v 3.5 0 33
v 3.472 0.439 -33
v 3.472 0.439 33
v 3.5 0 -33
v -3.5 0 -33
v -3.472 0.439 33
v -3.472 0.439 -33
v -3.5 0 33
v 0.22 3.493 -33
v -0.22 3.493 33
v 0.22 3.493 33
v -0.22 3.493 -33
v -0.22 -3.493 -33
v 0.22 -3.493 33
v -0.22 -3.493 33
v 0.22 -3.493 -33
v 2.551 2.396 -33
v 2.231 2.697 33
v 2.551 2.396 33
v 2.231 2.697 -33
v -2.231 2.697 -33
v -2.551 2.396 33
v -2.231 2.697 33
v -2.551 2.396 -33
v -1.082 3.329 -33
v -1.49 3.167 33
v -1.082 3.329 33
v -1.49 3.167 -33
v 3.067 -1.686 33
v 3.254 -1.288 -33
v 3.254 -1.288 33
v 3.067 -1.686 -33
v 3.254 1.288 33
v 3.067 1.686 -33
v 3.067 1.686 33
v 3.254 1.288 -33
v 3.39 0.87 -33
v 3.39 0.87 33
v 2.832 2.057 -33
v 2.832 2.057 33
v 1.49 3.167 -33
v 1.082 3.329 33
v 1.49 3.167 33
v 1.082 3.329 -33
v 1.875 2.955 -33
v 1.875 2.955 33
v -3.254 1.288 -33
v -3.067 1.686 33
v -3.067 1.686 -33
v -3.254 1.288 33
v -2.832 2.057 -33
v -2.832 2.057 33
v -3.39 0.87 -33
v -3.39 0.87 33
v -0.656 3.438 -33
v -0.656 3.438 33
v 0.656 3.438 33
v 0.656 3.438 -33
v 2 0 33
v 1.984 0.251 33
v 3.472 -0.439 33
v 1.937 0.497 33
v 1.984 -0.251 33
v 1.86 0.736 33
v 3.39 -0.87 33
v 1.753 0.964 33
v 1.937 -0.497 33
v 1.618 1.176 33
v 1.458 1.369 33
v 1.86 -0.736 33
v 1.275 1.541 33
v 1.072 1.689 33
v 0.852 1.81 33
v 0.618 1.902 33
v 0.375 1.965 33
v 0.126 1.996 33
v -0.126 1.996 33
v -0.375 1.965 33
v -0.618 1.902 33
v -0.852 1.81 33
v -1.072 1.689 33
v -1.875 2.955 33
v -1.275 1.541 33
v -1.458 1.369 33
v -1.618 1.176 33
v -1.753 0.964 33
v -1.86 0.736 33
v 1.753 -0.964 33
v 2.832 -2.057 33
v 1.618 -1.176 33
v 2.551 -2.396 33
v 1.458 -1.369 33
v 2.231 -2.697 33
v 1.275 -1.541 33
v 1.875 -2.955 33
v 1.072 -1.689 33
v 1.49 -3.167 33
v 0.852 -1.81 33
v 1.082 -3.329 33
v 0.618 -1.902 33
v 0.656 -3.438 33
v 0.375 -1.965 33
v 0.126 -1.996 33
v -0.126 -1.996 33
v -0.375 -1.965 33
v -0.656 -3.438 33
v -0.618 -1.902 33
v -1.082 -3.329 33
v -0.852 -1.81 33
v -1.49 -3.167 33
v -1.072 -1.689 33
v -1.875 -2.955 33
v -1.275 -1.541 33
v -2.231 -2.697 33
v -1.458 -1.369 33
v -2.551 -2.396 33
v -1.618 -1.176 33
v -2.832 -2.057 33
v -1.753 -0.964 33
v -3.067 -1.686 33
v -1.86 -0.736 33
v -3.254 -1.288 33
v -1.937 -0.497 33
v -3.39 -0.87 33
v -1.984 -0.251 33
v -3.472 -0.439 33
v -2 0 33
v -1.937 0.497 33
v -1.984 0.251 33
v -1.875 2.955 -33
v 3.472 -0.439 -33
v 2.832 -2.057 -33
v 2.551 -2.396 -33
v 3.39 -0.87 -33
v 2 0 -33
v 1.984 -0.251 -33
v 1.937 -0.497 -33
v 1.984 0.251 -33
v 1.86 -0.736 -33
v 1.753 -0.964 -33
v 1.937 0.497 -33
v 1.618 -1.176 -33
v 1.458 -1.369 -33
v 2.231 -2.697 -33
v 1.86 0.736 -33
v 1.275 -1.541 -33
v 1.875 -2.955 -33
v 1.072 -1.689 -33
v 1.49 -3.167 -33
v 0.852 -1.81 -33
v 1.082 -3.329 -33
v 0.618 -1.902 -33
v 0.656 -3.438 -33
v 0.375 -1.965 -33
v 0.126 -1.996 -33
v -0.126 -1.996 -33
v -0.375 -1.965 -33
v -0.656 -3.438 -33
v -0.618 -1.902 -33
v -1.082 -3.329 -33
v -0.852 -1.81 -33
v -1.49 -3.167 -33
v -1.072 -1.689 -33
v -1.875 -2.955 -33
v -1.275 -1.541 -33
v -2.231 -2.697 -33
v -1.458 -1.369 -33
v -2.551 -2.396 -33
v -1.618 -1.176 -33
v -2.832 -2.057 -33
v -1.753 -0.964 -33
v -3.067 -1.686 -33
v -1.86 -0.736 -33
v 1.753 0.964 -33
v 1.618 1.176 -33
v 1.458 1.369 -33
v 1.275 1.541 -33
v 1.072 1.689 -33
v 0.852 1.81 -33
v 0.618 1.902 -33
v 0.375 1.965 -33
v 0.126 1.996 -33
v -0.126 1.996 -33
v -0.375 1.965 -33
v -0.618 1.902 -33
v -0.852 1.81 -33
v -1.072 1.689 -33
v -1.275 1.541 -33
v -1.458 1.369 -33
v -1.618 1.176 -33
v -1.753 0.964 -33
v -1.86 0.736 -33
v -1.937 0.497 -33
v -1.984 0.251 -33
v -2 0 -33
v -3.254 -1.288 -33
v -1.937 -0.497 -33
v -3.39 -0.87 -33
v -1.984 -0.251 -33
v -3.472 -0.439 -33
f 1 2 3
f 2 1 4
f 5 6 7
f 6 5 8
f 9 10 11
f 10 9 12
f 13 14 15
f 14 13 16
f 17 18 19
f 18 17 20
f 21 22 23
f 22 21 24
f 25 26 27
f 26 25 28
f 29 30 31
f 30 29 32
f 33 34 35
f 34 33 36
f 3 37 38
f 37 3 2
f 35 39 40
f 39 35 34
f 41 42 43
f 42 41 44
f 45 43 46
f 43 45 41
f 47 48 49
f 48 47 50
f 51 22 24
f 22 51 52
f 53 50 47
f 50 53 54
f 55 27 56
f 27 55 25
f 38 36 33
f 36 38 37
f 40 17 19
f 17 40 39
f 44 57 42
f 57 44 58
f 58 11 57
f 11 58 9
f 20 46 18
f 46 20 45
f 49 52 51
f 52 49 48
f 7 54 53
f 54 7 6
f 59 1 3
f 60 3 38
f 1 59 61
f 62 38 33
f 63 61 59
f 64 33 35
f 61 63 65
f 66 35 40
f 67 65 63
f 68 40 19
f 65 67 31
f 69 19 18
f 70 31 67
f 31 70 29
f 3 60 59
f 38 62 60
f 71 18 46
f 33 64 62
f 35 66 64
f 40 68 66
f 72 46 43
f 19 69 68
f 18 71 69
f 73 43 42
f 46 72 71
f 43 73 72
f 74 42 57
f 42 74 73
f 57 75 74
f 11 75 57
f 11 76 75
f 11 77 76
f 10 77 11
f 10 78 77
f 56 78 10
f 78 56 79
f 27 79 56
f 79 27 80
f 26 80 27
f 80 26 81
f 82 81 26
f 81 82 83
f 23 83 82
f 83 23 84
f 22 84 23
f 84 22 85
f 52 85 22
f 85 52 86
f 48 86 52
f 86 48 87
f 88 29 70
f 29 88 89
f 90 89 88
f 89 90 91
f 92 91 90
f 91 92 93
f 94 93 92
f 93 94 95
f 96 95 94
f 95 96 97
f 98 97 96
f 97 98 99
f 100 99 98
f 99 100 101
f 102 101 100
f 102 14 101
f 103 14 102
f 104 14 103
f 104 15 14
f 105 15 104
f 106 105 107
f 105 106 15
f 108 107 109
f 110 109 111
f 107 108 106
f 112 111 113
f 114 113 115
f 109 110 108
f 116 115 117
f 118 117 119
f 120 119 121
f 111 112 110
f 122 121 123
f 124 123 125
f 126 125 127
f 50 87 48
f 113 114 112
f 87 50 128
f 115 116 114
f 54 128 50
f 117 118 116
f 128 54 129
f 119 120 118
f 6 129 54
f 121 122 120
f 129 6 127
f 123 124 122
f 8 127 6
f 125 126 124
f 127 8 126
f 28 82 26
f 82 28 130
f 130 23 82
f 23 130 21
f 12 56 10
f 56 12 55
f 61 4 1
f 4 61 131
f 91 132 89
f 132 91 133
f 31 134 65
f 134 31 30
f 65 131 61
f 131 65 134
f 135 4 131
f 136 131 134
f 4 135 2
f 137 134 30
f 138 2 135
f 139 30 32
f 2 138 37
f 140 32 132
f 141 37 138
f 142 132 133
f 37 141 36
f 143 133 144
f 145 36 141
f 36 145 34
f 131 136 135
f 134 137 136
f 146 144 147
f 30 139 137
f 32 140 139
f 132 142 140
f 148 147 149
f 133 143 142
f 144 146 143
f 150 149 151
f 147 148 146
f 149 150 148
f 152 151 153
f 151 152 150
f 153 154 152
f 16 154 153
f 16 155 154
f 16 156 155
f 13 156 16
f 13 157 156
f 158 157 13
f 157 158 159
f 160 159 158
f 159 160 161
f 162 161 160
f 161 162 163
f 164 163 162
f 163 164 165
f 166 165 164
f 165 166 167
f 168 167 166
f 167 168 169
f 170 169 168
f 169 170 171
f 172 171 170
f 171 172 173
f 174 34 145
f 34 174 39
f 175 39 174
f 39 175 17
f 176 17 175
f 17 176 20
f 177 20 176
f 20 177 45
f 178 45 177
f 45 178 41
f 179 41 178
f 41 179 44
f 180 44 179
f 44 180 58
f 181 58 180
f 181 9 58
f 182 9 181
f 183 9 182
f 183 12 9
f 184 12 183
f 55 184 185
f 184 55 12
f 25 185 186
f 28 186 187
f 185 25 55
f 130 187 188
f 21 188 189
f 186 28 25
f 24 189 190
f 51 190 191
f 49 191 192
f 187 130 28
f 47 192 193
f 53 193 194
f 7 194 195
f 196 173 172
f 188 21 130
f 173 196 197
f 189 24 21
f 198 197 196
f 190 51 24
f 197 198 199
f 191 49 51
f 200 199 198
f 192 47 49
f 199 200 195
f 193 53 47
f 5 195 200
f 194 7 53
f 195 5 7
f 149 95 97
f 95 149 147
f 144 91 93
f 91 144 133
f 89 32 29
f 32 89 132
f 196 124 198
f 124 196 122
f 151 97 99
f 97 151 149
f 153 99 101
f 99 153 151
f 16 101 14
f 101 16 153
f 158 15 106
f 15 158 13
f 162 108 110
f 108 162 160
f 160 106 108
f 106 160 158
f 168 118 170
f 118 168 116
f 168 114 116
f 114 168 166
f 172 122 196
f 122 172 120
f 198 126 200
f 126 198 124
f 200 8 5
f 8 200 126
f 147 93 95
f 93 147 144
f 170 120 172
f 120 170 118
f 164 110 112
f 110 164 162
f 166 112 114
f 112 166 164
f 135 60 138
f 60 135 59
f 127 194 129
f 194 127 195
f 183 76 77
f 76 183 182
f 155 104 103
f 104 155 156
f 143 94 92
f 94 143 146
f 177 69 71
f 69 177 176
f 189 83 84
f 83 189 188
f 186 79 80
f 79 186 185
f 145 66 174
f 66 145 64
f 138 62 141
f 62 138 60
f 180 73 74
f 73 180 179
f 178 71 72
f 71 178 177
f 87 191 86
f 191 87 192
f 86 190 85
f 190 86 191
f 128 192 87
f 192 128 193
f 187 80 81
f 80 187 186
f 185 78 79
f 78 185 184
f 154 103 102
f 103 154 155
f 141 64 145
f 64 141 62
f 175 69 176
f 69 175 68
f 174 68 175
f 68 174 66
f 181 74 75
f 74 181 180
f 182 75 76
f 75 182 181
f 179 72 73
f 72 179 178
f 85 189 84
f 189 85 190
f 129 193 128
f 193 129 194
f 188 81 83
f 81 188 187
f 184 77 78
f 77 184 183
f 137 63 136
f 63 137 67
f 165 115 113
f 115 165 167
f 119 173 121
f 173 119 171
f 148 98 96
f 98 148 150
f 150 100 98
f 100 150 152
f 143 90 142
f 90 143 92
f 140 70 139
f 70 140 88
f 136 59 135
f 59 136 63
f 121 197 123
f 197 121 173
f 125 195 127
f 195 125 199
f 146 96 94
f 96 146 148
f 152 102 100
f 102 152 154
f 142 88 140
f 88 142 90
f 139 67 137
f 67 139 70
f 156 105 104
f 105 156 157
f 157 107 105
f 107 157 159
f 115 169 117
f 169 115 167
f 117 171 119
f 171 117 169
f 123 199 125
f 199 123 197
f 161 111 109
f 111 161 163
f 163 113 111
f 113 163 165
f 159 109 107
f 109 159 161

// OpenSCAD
$fn = 50;


difference() {
	union() {
		translate(v = [0, 0, -33.0000000000]) {
			cylinder(h = 66, r = 3.5000000000);
		}
	}
	union() {
		translate(v = [0, 0, -100.0000000000]) {
			cylinder(h = 200, r = 2.0000000000);
		}
	}
}
